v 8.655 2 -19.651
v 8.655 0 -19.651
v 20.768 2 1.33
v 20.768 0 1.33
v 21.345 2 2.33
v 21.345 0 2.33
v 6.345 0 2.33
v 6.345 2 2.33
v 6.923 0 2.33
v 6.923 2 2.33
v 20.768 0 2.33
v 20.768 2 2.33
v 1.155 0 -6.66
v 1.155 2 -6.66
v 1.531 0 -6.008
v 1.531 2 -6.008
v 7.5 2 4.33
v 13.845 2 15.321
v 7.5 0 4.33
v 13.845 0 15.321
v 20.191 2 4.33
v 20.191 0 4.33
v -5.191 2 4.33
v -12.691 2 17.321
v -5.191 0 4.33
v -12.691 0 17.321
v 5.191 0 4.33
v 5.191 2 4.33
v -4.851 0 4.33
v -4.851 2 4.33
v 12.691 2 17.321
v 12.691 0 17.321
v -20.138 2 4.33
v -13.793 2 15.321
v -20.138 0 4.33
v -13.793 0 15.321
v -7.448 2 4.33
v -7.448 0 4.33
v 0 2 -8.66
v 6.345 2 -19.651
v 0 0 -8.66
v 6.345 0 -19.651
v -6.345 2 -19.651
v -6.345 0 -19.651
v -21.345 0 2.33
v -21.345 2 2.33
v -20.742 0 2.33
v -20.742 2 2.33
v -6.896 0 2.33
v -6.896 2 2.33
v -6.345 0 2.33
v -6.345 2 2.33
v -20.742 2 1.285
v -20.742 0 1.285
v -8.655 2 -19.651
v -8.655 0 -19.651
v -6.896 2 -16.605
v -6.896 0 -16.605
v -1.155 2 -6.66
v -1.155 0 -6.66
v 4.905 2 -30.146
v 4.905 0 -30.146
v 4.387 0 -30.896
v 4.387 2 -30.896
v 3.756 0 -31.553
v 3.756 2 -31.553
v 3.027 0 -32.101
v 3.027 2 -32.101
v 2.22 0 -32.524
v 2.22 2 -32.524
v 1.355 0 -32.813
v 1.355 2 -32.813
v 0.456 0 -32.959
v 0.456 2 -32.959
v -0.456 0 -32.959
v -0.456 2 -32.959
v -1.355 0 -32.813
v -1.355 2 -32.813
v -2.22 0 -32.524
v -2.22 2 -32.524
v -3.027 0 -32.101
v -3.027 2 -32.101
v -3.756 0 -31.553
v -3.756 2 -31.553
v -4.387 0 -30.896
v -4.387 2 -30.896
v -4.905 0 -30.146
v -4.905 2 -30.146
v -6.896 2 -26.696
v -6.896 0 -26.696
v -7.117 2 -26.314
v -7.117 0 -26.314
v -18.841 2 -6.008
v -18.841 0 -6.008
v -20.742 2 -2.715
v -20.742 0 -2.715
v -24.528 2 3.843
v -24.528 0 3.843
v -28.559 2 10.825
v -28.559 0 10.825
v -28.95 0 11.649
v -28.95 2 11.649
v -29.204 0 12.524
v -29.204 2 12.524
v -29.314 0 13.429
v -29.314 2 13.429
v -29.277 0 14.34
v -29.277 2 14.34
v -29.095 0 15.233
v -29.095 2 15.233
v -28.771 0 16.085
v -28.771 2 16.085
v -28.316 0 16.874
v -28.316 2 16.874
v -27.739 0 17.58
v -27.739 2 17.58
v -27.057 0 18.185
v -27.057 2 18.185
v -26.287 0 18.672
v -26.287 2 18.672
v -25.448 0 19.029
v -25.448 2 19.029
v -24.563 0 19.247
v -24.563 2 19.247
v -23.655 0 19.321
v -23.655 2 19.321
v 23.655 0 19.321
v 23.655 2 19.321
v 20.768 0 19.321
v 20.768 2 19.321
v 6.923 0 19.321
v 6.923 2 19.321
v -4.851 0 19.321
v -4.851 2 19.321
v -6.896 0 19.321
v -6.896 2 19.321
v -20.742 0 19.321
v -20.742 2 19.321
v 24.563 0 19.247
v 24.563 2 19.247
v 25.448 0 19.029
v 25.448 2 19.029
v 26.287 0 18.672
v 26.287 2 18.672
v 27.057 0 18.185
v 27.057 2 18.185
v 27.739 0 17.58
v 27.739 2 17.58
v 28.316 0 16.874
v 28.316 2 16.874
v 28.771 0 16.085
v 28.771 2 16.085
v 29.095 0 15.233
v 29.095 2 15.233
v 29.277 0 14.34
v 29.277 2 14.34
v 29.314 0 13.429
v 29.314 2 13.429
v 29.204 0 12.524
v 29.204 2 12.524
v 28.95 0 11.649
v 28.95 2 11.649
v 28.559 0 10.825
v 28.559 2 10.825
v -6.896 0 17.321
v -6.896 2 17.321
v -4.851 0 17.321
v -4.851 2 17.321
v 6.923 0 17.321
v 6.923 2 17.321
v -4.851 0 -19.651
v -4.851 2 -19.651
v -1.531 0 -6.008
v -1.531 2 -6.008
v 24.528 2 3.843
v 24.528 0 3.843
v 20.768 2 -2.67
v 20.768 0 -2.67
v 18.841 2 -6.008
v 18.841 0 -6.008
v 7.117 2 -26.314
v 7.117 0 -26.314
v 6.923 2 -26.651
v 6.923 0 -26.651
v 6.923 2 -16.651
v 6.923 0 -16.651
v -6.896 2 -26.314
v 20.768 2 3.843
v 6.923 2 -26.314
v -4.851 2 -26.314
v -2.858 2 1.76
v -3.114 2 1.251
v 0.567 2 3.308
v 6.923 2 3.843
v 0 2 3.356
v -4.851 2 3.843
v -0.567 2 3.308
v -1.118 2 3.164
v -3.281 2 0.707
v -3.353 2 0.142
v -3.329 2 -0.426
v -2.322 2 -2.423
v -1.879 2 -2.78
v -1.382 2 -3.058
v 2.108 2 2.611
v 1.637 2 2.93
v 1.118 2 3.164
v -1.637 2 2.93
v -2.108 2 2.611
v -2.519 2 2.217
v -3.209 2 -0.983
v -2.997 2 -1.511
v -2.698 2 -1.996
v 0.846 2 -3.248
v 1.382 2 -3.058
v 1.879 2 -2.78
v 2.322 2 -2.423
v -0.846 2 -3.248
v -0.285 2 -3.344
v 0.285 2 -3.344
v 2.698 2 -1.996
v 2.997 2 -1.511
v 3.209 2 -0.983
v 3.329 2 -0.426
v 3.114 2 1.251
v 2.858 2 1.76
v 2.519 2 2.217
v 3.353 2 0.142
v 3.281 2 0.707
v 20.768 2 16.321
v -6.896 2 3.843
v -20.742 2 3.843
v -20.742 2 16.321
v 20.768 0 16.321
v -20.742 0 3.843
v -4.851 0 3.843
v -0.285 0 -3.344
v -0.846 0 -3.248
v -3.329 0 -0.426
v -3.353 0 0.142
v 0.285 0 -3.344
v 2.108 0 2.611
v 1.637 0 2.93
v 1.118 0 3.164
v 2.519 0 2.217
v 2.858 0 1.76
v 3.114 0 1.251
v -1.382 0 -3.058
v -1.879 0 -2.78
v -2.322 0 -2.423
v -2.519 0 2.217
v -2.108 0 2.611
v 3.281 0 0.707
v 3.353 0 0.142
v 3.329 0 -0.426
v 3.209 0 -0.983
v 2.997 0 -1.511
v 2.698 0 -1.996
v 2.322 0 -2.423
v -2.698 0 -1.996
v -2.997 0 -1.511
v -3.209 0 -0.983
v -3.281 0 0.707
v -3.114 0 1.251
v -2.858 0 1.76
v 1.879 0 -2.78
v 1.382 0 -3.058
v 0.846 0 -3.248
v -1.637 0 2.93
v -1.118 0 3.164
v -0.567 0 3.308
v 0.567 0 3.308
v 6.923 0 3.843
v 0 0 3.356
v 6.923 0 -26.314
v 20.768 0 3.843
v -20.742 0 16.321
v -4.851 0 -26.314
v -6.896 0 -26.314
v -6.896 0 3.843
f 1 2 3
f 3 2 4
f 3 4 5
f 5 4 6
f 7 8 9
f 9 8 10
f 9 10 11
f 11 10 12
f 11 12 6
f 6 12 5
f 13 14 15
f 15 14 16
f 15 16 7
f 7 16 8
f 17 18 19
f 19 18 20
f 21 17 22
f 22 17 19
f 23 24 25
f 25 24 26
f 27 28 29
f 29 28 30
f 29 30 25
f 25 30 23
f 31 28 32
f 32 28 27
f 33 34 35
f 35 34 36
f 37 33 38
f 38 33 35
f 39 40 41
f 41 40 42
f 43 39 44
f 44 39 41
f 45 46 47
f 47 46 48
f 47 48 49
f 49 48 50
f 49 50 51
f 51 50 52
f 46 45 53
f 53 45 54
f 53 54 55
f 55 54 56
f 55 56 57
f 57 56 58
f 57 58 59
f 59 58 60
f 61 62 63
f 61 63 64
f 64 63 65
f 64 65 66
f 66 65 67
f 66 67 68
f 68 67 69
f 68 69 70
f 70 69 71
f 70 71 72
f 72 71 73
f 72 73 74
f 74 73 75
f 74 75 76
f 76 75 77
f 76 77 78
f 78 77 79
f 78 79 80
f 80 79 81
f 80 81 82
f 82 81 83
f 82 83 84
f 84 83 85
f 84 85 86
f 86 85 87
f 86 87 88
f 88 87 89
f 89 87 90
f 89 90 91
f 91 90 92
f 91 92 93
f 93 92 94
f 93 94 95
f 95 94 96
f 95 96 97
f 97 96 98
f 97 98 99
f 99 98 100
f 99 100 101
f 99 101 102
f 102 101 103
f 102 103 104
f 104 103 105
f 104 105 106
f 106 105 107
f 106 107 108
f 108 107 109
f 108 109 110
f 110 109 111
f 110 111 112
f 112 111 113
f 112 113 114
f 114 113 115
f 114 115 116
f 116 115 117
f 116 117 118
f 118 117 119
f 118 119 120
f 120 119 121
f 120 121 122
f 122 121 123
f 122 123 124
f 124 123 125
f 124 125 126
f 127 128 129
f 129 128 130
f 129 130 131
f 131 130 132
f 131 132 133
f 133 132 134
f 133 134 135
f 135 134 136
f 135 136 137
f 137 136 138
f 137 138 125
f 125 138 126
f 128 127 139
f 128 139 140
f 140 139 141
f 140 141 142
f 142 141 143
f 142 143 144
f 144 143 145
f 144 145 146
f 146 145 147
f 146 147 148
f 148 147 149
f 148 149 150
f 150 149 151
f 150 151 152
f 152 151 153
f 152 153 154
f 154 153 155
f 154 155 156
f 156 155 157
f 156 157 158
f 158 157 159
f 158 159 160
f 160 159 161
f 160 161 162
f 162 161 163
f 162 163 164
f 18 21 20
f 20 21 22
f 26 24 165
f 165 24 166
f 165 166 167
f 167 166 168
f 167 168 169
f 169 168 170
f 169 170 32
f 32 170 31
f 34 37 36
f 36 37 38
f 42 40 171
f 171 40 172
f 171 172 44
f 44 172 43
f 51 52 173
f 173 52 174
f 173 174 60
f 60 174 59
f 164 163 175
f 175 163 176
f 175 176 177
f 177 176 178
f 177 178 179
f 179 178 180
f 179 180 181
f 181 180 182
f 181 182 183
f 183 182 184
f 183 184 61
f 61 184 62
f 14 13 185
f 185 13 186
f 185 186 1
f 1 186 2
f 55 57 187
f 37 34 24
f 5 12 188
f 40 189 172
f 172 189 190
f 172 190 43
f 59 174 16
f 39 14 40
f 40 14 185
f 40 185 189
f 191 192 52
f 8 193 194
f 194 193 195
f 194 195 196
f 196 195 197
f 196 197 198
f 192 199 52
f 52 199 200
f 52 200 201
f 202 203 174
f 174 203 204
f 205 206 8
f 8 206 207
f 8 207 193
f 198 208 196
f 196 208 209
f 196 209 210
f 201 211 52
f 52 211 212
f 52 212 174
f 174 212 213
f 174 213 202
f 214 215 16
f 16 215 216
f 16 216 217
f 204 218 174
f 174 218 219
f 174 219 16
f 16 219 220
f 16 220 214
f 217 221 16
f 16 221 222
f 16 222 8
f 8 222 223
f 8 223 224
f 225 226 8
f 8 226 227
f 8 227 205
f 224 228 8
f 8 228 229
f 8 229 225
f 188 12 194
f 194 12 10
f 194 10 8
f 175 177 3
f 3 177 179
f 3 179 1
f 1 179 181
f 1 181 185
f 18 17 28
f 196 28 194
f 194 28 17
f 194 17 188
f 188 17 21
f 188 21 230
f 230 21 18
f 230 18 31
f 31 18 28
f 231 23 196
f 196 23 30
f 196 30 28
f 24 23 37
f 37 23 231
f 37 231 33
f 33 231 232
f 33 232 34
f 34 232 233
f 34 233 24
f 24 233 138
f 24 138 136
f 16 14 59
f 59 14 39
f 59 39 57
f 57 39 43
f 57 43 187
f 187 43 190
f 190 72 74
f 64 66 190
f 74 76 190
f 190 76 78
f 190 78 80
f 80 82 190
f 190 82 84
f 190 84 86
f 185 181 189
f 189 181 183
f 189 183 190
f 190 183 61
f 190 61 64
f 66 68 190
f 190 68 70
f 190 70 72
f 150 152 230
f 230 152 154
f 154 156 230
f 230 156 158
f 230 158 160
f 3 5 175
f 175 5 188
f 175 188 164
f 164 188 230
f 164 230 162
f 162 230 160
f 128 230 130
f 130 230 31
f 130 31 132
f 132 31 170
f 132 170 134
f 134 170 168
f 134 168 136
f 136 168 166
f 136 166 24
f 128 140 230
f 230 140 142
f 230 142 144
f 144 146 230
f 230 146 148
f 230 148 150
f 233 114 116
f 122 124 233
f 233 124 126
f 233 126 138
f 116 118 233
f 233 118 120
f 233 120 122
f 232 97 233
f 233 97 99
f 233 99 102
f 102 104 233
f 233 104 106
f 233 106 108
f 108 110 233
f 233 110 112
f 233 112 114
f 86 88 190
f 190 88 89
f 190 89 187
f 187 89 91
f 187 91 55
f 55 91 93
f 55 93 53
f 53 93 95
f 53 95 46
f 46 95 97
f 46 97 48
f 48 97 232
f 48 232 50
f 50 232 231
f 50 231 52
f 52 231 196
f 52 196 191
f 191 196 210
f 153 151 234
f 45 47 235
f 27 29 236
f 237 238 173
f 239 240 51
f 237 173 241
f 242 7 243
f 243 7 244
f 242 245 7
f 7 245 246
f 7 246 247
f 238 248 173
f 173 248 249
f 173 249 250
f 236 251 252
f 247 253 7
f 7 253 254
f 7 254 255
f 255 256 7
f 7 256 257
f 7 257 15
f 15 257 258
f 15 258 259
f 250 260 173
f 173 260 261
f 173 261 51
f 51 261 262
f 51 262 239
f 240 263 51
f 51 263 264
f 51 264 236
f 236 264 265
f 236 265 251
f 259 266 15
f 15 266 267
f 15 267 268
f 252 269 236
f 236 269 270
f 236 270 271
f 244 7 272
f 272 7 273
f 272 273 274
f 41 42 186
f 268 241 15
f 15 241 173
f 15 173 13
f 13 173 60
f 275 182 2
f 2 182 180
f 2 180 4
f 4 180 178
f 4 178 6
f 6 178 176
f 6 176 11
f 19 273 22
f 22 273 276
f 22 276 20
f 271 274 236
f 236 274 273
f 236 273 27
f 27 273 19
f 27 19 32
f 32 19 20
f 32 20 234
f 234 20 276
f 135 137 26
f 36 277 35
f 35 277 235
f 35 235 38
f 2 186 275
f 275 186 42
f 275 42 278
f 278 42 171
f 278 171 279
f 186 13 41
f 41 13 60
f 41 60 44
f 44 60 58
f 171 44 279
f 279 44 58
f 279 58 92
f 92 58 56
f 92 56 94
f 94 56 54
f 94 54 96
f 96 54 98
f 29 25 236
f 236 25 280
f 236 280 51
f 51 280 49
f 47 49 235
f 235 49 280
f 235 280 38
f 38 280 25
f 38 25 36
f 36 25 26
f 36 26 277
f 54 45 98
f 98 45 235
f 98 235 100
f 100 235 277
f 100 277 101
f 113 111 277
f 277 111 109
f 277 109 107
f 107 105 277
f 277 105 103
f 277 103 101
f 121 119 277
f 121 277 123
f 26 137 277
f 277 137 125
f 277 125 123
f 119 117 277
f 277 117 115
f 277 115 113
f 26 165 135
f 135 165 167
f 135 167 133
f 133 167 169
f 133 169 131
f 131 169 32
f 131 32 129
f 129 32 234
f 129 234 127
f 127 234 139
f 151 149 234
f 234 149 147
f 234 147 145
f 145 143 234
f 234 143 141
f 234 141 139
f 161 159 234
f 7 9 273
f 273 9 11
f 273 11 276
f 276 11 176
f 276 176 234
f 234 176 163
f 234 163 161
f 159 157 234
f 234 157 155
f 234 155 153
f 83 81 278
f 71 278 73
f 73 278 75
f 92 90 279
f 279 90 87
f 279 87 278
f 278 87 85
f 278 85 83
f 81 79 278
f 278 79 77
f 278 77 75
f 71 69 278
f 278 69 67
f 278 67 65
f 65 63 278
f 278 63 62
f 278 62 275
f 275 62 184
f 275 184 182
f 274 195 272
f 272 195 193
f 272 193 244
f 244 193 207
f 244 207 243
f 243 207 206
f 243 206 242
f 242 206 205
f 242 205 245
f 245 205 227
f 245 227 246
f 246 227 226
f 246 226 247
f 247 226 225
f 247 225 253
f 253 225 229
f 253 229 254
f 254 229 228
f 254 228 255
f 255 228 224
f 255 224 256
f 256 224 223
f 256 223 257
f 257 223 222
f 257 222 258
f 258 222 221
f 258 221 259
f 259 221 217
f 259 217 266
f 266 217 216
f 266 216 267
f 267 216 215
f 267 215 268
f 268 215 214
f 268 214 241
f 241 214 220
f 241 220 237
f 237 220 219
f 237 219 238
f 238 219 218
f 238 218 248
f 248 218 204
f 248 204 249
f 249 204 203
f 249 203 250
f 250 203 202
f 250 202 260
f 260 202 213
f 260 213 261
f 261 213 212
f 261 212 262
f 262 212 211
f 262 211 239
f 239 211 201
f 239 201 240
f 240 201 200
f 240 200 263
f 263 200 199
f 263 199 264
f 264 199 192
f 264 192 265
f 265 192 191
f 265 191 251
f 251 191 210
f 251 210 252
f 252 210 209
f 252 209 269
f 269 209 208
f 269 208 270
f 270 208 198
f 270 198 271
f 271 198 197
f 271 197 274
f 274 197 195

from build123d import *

# Parameters (mm, degrees)
EXTRUDE_17_DEPTH     = 2
SKETCH_4_R           = 3.35601343
CUT_EXTRUDE_25_DEPTH = 45.170960421


with BuildPart() as part:
    # 草图2 → 凸台-拉伸17 (new body)
    with BuildSketch(Plane(origin=(0, 0, 0), x_dir=(1, 0, 0), z_dir=(0, 1, 0))):
        with BuildLine():
            Line((-4.904700538, 30.145825623), (-28.559401011, -10.825317434))
            ThreePointArc((-28.559401011, -10.825317434), (-28.55940111, -16.488777843), (-23.654700538, -19.320508076))
            Line((-23.654700538, -19.320508076), (23.654700538, -19.320508076))
            ThreePointArc((23.654700538, -19.320508076), (28.559401192, -16.4887777), (28.559400847, -10.825317149))
            Line((28.559400847, -10.825317149), (4.904700538, 30.145825623))
            ThreePointArc((4.904700538, 30.145825623), (0, 32.977555799), (-4.904700538, 30.145825623))
        make_face()
        Polygon((-7.447524928, -4.330127019), (-13.79282439, -15.320508076), (-20.138123851, -4.330127019), align=None, mode=Mode.SUBTRACT)
        Polygon((5.190598923, -4.330127019), (12.690598923, -17.320508076), (-12.690598923, -17.320508076), (-5.190598923, -4.330127019), align=None, mode=Mode.SUBTRACT)
        Polygon((7.5, -4.330127019), (20.190598923, -4.330127019), (13.845299462, -15.320508076), align=None, mode=Mode.SUBTRACT)
        Polygon((-6.345299462, -2.330127019), (-21.345299462, -2.330127019), (-8.654700538, 19.650635095), (-1.154700538, 6.660254038), align=None, mode=Mode.SUBTRACT)
        Polygon((0, 8.660254038), (-6.345299462, 19.650635095), (6.345299462, 19.650635095), align=None, mode=Mode.SUBTRACT)
        Polygon((1.154700538, 6.660254038), (8.654700538, 19.650635095), (8.930688533, 19.172609866), (21.345299462, -2.330127019), (6.345299461, -2.330127019), align=None, mode=Mode.SUBTRACT)
    extrude(amount=EXTRUDE_17_DEPTH)

    # 草图4 → 切除-拉伸25 (cut, through all)
    with BuildSketch(Plane(origin=(0, 2, 0), x_dir=(1, 0, 0), z_dir=(0, 1, 0))):
        with Locations(Location((0, 0, 0), (0, 0, 270))):
            Circle(SKETCH_4_R)
    extrude(amount=-CUT_EXTRUDE_25_DEPTH, mode=Mode.SUBTRACT)


solid = part.part
